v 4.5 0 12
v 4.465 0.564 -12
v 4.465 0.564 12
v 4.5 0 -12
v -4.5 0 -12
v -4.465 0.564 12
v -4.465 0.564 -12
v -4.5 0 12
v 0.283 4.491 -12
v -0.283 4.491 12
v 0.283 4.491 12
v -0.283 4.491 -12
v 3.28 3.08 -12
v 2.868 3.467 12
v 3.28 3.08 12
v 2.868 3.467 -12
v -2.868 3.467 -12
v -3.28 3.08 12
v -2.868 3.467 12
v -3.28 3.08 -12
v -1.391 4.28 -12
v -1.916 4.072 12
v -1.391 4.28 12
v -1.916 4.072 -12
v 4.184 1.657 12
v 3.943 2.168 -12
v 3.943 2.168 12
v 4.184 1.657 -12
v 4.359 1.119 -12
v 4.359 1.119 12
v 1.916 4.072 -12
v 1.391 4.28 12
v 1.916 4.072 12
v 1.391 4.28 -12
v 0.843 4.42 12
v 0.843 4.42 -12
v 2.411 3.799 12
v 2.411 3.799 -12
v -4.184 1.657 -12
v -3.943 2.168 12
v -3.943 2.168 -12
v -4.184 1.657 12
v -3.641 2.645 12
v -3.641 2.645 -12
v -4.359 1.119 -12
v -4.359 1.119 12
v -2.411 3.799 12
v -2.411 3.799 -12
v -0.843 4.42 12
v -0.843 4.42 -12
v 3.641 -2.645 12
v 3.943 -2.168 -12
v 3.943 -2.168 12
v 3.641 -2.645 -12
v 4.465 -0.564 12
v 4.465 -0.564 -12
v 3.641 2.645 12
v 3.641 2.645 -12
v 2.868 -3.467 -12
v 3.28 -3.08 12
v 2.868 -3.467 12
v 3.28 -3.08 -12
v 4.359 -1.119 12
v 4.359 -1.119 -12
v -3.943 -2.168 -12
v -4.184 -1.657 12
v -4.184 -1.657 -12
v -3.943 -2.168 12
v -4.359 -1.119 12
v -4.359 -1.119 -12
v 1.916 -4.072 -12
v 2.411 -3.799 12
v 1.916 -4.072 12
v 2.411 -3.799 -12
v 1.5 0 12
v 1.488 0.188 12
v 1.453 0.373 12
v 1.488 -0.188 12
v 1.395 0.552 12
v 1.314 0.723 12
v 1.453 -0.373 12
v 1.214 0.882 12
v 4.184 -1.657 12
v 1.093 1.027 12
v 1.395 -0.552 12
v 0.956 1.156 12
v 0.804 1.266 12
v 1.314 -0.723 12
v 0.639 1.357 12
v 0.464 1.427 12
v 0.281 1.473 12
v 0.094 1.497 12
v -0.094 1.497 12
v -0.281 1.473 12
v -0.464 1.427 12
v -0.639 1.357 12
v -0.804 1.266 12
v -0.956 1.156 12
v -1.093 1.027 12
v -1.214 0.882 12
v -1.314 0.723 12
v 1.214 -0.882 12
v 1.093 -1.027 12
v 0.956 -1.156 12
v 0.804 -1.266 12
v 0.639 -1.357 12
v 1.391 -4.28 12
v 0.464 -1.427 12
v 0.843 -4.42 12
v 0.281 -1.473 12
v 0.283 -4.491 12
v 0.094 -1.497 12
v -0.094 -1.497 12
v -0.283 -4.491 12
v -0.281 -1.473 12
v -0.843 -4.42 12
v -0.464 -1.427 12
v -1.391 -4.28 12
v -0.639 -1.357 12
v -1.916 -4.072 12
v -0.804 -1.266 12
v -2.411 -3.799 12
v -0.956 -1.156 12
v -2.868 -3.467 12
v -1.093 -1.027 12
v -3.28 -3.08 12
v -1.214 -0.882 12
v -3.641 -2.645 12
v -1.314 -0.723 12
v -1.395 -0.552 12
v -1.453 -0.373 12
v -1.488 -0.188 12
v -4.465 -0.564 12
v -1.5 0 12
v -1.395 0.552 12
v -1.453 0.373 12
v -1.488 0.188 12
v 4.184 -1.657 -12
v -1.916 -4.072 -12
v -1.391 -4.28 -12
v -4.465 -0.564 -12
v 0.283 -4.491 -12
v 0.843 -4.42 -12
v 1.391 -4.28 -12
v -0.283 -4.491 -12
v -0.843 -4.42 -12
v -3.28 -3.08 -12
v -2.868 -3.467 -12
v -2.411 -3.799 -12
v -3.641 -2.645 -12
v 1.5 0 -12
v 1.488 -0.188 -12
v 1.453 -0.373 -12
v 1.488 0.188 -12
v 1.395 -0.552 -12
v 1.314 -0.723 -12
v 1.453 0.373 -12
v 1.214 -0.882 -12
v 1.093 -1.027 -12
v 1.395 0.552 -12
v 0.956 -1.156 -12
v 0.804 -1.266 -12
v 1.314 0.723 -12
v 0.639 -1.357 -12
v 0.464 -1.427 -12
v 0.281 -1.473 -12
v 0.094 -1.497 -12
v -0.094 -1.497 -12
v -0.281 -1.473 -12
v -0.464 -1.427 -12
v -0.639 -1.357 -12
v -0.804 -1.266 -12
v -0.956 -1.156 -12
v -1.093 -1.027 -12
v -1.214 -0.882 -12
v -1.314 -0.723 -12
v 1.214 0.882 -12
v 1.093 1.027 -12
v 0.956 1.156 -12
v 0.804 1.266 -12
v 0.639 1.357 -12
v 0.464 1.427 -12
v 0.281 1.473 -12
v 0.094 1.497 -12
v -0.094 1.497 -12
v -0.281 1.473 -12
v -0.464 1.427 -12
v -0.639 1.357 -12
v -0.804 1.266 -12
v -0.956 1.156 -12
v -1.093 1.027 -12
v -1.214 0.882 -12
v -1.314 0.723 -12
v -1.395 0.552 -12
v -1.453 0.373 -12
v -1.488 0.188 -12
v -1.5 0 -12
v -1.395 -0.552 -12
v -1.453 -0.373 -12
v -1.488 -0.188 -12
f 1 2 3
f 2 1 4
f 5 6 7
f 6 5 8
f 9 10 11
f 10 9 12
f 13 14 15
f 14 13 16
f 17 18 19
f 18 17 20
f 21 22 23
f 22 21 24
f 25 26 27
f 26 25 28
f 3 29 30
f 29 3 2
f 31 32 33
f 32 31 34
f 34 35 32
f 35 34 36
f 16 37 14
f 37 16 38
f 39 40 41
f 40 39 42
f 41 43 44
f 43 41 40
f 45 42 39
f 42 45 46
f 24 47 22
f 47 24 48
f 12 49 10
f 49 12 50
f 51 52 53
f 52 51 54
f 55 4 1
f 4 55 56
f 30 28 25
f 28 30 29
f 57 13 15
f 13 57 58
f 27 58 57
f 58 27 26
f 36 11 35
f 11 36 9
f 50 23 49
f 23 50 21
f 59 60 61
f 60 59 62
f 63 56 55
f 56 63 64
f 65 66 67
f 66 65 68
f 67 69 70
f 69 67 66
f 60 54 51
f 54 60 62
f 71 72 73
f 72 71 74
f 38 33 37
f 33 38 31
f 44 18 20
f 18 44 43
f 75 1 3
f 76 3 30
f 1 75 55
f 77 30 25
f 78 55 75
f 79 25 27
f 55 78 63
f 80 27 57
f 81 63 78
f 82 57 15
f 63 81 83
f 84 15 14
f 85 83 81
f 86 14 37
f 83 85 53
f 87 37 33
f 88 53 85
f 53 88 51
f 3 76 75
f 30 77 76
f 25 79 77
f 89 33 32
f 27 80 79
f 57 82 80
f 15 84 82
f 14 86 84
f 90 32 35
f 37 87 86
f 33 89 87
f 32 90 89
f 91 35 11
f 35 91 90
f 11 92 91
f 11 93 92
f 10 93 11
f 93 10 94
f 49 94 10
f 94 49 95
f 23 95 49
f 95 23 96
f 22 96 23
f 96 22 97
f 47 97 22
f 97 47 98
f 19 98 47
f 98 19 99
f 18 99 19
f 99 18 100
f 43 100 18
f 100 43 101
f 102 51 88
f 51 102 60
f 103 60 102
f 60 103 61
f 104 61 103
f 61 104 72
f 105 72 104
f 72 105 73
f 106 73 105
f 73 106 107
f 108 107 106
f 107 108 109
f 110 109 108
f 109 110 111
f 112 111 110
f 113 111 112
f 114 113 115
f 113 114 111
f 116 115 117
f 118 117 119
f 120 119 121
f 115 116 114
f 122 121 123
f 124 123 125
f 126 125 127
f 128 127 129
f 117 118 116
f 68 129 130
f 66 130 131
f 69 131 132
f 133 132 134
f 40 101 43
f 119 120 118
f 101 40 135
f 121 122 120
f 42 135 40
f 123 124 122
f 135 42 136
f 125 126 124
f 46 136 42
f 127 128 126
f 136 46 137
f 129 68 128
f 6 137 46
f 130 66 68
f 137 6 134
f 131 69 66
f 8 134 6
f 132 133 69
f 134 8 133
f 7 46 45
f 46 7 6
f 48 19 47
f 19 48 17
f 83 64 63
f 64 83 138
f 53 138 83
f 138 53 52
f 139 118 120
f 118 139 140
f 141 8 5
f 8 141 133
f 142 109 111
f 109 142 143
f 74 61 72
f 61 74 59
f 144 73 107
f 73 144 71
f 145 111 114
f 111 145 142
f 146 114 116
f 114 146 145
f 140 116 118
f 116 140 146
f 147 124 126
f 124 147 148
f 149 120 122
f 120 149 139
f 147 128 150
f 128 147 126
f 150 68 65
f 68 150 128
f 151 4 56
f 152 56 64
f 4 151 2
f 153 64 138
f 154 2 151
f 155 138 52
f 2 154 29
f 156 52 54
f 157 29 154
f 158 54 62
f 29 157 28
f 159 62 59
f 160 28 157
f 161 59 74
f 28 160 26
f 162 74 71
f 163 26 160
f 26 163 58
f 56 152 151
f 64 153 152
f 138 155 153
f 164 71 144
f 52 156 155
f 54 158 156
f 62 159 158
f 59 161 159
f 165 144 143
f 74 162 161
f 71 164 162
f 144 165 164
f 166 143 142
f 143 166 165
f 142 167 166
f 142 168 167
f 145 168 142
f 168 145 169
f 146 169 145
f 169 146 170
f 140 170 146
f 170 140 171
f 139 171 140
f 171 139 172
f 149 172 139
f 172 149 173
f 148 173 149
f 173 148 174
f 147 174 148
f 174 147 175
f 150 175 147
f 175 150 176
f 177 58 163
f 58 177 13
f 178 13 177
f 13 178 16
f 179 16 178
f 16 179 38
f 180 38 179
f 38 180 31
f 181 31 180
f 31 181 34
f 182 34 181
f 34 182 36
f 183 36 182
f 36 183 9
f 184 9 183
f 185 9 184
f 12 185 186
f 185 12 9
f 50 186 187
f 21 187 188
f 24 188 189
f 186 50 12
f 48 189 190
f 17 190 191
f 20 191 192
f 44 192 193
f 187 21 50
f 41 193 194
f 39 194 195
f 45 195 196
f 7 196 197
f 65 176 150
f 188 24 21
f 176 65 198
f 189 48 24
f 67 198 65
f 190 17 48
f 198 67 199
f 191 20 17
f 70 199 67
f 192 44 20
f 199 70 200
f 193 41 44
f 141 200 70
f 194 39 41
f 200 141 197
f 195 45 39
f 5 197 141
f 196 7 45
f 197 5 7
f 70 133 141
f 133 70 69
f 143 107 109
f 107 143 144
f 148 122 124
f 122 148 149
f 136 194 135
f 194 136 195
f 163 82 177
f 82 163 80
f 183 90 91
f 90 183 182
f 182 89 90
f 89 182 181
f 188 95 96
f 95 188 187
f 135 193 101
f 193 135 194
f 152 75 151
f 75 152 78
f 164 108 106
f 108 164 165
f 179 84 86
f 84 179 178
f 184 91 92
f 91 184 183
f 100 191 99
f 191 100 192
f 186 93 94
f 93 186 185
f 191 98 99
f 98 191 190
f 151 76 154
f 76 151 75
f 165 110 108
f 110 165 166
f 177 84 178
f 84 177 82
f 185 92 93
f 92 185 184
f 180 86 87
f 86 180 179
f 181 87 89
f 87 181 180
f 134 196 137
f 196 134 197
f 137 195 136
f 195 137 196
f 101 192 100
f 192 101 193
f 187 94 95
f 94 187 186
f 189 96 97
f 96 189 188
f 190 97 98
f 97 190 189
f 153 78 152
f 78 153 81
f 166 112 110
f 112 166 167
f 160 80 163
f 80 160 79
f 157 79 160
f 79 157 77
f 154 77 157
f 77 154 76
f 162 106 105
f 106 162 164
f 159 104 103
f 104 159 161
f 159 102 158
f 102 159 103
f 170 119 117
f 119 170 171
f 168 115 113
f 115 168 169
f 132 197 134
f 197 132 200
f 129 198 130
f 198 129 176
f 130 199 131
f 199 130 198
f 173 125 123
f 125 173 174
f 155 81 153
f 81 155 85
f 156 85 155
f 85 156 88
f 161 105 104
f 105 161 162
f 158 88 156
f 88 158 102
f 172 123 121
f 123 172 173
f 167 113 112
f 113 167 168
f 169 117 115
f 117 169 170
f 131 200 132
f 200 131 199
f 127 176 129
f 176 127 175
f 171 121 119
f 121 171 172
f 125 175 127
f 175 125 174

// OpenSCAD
$fn = 50;


difference() {
	union() {
		translate(v = [0, 0, -12.0000000000]) {
			cylinder(h = 24, r = 4.5000000000);
		}
	}
	union() {
		translate(v = [0, 0, -100.0000000000]) {
			cylinder(h = 200, r = 1.5000000000);
		}
	}
}
